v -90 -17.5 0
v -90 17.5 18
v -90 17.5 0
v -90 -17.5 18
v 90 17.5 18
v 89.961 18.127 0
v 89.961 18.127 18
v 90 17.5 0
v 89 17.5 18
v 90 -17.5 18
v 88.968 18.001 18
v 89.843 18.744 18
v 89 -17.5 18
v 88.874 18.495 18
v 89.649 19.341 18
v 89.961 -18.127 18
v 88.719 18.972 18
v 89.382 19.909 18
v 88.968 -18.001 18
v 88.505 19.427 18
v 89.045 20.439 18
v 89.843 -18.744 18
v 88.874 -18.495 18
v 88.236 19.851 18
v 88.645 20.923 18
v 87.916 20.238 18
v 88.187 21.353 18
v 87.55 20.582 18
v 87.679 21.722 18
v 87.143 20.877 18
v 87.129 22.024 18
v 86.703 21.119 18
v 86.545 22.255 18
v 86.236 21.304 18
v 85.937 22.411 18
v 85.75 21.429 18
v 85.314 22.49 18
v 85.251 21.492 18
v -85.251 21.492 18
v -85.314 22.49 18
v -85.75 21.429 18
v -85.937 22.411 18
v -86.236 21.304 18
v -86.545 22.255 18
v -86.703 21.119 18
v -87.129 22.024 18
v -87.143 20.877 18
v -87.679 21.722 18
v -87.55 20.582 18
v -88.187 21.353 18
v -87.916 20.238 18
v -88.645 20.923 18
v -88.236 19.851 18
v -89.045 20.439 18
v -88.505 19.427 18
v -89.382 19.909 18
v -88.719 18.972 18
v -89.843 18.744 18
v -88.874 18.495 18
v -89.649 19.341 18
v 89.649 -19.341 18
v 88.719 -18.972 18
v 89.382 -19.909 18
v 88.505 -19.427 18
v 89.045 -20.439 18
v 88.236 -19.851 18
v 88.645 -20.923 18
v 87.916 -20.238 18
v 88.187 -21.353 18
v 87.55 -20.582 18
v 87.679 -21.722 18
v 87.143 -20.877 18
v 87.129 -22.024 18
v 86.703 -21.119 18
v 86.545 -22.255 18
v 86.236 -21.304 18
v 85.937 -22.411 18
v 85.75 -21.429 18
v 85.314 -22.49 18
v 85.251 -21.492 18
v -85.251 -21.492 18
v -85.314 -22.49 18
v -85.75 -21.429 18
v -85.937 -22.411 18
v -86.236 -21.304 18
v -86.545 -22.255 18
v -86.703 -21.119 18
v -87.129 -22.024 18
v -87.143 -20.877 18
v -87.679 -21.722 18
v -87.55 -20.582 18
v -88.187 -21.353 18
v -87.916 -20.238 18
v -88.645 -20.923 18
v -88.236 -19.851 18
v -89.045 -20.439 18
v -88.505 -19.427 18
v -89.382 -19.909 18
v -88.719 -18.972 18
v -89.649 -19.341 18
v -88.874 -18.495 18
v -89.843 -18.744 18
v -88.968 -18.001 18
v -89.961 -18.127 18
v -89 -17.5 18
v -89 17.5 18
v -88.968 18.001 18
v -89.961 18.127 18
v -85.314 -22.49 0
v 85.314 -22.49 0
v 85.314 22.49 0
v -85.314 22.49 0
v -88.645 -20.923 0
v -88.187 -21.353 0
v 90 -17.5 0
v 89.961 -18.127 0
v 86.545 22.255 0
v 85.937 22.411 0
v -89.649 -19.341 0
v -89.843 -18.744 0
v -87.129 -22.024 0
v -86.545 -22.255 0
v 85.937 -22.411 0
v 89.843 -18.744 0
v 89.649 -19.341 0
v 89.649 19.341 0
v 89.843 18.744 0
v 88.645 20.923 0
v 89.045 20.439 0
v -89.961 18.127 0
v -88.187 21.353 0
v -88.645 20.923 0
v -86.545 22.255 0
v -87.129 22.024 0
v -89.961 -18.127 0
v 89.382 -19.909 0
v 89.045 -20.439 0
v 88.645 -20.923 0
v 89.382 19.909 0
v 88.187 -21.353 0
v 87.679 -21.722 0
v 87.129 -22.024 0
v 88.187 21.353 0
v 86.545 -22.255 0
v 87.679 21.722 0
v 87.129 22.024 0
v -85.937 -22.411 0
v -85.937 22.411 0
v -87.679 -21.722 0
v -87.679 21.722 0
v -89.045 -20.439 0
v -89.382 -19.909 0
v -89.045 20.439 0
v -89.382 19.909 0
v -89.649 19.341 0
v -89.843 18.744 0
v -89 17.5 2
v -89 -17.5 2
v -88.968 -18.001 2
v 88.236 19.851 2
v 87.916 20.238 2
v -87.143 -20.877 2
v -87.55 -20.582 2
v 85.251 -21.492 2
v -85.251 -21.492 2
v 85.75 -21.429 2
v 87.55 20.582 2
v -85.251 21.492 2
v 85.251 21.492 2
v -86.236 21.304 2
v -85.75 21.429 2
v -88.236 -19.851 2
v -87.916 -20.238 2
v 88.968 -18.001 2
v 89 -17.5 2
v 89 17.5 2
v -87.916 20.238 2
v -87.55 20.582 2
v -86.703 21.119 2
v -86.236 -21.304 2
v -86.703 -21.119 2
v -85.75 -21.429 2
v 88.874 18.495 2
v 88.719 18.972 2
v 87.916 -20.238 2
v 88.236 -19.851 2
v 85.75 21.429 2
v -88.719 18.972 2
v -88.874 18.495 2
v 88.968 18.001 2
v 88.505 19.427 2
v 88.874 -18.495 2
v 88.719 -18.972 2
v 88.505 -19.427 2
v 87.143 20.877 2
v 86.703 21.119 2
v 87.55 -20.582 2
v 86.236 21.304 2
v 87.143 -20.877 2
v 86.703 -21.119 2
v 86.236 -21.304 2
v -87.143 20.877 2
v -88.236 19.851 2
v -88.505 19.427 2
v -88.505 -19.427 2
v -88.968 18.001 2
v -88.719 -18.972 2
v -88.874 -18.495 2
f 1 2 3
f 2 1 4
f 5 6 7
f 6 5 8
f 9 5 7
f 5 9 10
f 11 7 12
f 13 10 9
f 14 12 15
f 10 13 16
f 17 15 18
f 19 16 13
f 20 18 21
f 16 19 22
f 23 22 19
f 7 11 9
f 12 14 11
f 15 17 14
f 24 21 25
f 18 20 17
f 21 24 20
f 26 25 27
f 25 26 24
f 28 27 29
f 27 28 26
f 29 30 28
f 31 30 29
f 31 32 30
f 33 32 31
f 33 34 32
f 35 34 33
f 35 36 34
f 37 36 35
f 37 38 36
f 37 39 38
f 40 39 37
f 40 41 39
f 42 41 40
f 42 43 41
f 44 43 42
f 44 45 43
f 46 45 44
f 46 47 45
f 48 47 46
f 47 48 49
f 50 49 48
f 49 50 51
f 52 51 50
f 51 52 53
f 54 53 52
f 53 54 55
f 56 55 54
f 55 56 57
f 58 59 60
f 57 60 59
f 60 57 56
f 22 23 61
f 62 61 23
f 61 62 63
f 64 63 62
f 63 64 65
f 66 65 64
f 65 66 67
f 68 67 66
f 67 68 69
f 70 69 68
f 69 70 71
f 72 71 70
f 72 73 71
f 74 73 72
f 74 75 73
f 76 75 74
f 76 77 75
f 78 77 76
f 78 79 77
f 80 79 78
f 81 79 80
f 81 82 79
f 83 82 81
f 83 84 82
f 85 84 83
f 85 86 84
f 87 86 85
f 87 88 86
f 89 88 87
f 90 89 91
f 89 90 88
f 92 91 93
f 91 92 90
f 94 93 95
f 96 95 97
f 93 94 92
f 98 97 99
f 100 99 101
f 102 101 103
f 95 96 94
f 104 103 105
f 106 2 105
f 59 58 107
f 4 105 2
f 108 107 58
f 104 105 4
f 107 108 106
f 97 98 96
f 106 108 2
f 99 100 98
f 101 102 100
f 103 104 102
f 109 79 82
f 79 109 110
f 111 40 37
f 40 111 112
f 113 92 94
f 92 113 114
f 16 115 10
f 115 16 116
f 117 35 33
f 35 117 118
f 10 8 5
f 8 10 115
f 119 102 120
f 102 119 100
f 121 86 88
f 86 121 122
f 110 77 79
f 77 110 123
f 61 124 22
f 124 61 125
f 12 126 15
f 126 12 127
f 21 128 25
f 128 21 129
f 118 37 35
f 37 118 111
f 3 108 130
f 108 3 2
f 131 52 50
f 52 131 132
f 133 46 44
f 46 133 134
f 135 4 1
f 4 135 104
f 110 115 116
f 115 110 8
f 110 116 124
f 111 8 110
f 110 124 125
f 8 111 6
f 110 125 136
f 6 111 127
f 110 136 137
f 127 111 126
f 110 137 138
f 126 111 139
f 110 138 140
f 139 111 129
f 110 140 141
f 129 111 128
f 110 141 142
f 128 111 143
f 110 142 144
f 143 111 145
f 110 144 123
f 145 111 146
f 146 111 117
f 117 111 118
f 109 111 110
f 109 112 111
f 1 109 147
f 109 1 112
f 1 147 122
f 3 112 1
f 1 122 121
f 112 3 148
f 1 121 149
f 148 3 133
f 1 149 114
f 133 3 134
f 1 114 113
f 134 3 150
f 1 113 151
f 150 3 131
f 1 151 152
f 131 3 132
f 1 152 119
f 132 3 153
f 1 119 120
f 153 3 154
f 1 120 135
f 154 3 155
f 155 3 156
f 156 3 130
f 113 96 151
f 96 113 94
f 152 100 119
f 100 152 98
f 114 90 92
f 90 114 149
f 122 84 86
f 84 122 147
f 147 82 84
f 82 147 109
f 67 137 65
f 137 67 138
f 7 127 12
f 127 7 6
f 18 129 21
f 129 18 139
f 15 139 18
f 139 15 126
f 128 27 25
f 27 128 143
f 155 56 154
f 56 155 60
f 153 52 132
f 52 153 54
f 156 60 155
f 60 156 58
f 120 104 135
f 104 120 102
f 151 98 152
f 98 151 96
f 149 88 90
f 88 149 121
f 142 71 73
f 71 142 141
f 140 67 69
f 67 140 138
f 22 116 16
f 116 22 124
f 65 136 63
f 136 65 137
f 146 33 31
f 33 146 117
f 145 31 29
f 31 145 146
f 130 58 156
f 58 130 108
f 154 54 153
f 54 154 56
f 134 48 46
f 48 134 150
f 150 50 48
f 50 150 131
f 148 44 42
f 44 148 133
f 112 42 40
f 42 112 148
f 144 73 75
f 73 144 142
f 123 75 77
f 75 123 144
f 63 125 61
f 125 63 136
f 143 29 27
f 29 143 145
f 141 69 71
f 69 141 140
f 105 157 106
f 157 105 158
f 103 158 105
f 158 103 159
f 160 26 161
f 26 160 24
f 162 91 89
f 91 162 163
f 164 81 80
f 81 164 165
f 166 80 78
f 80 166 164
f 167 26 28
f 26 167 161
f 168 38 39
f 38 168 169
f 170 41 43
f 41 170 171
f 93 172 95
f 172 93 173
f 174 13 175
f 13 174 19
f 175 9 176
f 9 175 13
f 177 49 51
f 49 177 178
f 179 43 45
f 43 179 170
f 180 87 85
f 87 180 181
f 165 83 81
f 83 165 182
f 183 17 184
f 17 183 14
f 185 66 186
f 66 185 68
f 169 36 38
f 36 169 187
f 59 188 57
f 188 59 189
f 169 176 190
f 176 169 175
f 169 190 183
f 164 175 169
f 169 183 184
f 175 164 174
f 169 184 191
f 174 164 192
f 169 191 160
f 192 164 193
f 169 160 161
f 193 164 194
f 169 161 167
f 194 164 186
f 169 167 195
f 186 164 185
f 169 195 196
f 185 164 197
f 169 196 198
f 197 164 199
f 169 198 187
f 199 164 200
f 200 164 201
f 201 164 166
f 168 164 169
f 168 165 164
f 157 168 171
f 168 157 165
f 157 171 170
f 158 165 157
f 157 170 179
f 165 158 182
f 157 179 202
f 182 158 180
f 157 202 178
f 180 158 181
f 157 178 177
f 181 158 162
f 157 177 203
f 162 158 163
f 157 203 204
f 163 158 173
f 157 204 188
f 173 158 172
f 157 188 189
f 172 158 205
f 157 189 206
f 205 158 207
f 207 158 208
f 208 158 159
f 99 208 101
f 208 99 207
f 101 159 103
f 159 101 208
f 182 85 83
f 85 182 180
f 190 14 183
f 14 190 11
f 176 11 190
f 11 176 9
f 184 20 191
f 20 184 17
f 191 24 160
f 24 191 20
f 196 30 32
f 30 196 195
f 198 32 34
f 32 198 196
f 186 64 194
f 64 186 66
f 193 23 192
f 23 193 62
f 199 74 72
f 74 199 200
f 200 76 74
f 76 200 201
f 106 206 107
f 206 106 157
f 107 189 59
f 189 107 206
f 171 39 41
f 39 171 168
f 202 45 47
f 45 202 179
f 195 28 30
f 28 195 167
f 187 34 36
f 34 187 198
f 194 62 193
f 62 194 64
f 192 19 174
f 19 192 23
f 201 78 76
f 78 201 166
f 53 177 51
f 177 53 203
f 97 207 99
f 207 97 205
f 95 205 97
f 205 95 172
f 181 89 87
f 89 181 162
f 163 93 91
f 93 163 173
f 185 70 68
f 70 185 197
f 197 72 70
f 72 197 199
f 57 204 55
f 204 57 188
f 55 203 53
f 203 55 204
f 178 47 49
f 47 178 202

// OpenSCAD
$fn = 50;


difference() {
	union() {
		hull() {
			translate(v = [-85.0000000000, 17.5000000000, 0]) {
				cylinder(h = 18, r = 5);
			}
			translate(v = [85.0000000000, 17.5000000000, 0]) {
				cylinder(h = 18, r = 5);
			}
			translate(v = [-85.0000000000, -17.5000000000, 0]) {
				cylinder(h = 18, r = 5);
			}
			translate(v = [85.0000000000, -17.5000000000, 0]) {
				cylinder(h = 18, r = 5);
			}
		}
	}
	union() {
		translate(v = [0, 0, 2]) {
			hull() {
				translate(v = [-85.0000000000, 17.5000000000, 0]) {
					cylinder(h = 16, r = 4);
				}
				translate(v = [85.0000000000, 17.5000000000, 0]) {
					cylinder(h = 16, r = 4);
				}
				translate(v = [-85.0000000000, -17.5000000000, 0]) {
					cylinder(h = 16, r = 4);
				}
				translate(v = [85.0000000000, -17.5000000000, 0]) {
					cylinder(h = 16, r = 4);
				}
			}
		}
	}
}
